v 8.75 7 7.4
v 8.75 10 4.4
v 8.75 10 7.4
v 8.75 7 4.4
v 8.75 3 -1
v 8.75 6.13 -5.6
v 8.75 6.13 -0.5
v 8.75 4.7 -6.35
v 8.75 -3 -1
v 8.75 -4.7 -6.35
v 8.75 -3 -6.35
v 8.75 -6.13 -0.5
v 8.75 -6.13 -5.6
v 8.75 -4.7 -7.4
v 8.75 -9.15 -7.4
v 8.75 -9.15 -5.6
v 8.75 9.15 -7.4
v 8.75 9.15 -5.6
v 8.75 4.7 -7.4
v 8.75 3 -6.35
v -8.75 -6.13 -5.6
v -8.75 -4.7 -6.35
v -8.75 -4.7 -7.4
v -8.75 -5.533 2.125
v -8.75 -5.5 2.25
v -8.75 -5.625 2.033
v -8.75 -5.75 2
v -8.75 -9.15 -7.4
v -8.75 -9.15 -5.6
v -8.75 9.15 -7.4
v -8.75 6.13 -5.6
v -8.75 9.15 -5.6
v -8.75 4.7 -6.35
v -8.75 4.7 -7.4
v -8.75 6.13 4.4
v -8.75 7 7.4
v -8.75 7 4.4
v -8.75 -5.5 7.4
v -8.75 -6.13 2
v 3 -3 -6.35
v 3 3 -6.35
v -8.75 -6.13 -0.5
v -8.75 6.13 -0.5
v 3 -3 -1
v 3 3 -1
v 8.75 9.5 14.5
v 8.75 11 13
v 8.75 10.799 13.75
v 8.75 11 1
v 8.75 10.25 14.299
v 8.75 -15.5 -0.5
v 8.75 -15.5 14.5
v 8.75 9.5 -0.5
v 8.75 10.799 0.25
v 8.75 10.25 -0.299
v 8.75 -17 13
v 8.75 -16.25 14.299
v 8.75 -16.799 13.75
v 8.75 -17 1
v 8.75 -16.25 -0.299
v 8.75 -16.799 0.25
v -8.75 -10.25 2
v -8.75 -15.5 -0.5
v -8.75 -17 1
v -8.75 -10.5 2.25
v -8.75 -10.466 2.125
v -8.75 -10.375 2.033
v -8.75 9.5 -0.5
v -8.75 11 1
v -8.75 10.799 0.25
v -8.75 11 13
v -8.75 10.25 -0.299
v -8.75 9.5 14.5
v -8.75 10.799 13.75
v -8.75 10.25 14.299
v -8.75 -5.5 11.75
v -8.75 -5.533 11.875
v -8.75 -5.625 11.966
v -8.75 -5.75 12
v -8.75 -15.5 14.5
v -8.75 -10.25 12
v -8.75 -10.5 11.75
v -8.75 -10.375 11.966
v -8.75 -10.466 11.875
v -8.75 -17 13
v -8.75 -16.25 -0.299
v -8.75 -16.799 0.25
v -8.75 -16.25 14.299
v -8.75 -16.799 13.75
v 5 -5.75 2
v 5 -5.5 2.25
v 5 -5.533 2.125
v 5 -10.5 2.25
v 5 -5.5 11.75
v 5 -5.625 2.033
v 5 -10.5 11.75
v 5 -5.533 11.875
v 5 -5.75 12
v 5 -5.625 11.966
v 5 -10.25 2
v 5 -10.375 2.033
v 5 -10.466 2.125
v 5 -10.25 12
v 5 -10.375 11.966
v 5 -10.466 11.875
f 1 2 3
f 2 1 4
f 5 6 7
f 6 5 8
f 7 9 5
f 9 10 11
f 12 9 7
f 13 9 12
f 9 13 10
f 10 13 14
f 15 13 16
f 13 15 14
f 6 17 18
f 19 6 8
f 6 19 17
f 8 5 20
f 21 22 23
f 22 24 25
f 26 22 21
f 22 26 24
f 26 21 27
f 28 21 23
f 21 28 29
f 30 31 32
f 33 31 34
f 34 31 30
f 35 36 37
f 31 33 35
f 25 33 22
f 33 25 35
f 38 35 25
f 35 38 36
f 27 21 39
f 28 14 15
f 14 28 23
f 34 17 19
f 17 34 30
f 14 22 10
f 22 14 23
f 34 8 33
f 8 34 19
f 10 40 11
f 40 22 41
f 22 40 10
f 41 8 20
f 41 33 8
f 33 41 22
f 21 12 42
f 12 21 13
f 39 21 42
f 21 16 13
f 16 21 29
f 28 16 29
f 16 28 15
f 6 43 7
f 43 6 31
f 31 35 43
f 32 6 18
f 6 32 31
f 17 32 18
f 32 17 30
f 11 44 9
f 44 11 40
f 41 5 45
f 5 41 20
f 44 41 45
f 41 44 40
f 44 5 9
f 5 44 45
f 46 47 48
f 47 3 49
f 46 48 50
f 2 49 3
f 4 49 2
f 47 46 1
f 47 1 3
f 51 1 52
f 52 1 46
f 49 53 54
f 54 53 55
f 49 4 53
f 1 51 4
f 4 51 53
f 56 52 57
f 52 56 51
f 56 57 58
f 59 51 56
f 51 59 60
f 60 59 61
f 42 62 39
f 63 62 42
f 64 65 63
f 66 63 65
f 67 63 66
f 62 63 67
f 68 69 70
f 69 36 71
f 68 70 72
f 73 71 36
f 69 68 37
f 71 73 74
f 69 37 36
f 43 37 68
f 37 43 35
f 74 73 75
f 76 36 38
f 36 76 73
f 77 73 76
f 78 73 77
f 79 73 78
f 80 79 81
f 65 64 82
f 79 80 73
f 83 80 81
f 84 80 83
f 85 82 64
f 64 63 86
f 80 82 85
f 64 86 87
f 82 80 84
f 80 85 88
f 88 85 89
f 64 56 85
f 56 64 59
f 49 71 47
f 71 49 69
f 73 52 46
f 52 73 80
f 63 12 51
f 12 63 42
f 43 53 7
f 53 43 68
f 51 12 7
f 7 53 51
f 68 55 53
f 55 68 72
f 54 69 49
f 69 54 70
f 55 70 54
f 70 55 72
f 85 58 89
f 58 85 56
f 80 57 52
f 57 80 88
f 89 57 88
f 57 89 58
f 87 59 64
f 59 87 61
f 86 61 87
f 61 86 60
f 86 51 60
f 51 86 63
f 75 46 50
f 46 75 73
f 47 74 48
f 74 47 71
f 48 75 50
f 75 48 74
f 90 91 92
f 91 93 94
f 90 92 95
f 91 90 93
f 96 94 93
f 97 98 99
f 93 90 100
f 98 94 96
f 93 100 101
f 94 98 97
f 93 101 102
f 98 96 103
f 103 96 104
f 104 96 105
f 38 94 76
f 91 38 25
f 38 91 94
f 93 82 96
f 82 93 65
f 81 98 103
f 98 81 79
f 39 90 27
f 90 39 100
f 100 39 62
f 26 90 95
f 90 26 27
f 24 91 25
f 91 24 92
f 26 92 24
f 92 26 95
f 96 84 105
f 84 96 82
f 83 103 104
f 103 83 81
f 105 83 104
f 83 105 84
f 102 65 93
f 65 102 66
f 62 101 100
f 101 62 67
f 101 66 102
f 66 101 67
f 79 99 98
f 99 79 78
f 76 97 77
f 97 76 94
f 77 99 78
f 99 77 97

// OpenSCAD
time = 0;

module rcube (cube_arr = [1, 1, 1], d = 0, center = true, $fn = $fn) {
  r = d/2;
  union () {
    cube([cube_arr[0] - d, cube_arr[1], cube_arr[2]], center = center);
    cube([cube_arr[0], cube_arr[1] - d, cube_arr[2]], center = center);
    translate ([1 * (cube_arr[0] / 2) - r , 1 * (cube_arr[1] / 2)- r, 0]) {
          cylinder(r = r, h = cube_arr[2], center = center);
        }
    translate ([-1 * (cube_arr[0] / 2) + r, -1 * (cube_arr[1] / 2) + r, 0]) {
          cylinder(r = r, h = cube_arr[2], center = center);
        }
    translate ([1 * (cube_arr[0] / 2) - r, -1 * (cube_arr[1] / 2) + r, 0]) {
          cylinder(r = r, h = cube_arr[2], center = center);
        }
    translate ([-1 * (cube_arr[0] / 2) + r, 1 * (cube_arr[1] / 2)- r, 0]) {
          cylinder(r = r, h = cube_arr[2], center = center);
        }
    }
}

module hot_shoe_mount() {
  difference() {
    cube([20,14.8,17.5], center=true);

    translate([0,-7.6,0]) {
      cube([9.4,2.5,17.6], center=true);
    }
  
    translate([-8.125,-0.60,0]) {
      cube([3.99,10,17.6], center=true);
    }
  
    translate([-9.65,-6.5,0]) {
      cube([1,2,17.9], center=true);
    }
  
  
    translate([8.125,-0.60,0]) {
      cube([3.99,10,17.6], center=true);
    }
  
    translate([9.65,-6.5,0]) {
      cube([1,2,17.9], center=true);
    }
    translate([0, -4, 6]) cube([6, 6, 6], center=true);
    
  }
}

module bolex_matte_box_rail () {
	RAIL = 10;
  	difference () {
  		union() {
			rotate([90, 0, 90]) hot_shoe_mount();
  			translate([0, -3, 7]) rotate([0, 90, 0]) rcube([RAIL+5, 28, 17.5], d = 3, center = true, $fn = 12);
  		}
  		translate([-75, -8, 7]) {
    		rotate([0, 90, 0]) {
      			rcube([RAIL, RAIL/2, 160], d = .5, center = true, $fn = 12);
        	}
      	}
    }
}

rotate([0, 0, time]) bolex_matte_box_rail();
